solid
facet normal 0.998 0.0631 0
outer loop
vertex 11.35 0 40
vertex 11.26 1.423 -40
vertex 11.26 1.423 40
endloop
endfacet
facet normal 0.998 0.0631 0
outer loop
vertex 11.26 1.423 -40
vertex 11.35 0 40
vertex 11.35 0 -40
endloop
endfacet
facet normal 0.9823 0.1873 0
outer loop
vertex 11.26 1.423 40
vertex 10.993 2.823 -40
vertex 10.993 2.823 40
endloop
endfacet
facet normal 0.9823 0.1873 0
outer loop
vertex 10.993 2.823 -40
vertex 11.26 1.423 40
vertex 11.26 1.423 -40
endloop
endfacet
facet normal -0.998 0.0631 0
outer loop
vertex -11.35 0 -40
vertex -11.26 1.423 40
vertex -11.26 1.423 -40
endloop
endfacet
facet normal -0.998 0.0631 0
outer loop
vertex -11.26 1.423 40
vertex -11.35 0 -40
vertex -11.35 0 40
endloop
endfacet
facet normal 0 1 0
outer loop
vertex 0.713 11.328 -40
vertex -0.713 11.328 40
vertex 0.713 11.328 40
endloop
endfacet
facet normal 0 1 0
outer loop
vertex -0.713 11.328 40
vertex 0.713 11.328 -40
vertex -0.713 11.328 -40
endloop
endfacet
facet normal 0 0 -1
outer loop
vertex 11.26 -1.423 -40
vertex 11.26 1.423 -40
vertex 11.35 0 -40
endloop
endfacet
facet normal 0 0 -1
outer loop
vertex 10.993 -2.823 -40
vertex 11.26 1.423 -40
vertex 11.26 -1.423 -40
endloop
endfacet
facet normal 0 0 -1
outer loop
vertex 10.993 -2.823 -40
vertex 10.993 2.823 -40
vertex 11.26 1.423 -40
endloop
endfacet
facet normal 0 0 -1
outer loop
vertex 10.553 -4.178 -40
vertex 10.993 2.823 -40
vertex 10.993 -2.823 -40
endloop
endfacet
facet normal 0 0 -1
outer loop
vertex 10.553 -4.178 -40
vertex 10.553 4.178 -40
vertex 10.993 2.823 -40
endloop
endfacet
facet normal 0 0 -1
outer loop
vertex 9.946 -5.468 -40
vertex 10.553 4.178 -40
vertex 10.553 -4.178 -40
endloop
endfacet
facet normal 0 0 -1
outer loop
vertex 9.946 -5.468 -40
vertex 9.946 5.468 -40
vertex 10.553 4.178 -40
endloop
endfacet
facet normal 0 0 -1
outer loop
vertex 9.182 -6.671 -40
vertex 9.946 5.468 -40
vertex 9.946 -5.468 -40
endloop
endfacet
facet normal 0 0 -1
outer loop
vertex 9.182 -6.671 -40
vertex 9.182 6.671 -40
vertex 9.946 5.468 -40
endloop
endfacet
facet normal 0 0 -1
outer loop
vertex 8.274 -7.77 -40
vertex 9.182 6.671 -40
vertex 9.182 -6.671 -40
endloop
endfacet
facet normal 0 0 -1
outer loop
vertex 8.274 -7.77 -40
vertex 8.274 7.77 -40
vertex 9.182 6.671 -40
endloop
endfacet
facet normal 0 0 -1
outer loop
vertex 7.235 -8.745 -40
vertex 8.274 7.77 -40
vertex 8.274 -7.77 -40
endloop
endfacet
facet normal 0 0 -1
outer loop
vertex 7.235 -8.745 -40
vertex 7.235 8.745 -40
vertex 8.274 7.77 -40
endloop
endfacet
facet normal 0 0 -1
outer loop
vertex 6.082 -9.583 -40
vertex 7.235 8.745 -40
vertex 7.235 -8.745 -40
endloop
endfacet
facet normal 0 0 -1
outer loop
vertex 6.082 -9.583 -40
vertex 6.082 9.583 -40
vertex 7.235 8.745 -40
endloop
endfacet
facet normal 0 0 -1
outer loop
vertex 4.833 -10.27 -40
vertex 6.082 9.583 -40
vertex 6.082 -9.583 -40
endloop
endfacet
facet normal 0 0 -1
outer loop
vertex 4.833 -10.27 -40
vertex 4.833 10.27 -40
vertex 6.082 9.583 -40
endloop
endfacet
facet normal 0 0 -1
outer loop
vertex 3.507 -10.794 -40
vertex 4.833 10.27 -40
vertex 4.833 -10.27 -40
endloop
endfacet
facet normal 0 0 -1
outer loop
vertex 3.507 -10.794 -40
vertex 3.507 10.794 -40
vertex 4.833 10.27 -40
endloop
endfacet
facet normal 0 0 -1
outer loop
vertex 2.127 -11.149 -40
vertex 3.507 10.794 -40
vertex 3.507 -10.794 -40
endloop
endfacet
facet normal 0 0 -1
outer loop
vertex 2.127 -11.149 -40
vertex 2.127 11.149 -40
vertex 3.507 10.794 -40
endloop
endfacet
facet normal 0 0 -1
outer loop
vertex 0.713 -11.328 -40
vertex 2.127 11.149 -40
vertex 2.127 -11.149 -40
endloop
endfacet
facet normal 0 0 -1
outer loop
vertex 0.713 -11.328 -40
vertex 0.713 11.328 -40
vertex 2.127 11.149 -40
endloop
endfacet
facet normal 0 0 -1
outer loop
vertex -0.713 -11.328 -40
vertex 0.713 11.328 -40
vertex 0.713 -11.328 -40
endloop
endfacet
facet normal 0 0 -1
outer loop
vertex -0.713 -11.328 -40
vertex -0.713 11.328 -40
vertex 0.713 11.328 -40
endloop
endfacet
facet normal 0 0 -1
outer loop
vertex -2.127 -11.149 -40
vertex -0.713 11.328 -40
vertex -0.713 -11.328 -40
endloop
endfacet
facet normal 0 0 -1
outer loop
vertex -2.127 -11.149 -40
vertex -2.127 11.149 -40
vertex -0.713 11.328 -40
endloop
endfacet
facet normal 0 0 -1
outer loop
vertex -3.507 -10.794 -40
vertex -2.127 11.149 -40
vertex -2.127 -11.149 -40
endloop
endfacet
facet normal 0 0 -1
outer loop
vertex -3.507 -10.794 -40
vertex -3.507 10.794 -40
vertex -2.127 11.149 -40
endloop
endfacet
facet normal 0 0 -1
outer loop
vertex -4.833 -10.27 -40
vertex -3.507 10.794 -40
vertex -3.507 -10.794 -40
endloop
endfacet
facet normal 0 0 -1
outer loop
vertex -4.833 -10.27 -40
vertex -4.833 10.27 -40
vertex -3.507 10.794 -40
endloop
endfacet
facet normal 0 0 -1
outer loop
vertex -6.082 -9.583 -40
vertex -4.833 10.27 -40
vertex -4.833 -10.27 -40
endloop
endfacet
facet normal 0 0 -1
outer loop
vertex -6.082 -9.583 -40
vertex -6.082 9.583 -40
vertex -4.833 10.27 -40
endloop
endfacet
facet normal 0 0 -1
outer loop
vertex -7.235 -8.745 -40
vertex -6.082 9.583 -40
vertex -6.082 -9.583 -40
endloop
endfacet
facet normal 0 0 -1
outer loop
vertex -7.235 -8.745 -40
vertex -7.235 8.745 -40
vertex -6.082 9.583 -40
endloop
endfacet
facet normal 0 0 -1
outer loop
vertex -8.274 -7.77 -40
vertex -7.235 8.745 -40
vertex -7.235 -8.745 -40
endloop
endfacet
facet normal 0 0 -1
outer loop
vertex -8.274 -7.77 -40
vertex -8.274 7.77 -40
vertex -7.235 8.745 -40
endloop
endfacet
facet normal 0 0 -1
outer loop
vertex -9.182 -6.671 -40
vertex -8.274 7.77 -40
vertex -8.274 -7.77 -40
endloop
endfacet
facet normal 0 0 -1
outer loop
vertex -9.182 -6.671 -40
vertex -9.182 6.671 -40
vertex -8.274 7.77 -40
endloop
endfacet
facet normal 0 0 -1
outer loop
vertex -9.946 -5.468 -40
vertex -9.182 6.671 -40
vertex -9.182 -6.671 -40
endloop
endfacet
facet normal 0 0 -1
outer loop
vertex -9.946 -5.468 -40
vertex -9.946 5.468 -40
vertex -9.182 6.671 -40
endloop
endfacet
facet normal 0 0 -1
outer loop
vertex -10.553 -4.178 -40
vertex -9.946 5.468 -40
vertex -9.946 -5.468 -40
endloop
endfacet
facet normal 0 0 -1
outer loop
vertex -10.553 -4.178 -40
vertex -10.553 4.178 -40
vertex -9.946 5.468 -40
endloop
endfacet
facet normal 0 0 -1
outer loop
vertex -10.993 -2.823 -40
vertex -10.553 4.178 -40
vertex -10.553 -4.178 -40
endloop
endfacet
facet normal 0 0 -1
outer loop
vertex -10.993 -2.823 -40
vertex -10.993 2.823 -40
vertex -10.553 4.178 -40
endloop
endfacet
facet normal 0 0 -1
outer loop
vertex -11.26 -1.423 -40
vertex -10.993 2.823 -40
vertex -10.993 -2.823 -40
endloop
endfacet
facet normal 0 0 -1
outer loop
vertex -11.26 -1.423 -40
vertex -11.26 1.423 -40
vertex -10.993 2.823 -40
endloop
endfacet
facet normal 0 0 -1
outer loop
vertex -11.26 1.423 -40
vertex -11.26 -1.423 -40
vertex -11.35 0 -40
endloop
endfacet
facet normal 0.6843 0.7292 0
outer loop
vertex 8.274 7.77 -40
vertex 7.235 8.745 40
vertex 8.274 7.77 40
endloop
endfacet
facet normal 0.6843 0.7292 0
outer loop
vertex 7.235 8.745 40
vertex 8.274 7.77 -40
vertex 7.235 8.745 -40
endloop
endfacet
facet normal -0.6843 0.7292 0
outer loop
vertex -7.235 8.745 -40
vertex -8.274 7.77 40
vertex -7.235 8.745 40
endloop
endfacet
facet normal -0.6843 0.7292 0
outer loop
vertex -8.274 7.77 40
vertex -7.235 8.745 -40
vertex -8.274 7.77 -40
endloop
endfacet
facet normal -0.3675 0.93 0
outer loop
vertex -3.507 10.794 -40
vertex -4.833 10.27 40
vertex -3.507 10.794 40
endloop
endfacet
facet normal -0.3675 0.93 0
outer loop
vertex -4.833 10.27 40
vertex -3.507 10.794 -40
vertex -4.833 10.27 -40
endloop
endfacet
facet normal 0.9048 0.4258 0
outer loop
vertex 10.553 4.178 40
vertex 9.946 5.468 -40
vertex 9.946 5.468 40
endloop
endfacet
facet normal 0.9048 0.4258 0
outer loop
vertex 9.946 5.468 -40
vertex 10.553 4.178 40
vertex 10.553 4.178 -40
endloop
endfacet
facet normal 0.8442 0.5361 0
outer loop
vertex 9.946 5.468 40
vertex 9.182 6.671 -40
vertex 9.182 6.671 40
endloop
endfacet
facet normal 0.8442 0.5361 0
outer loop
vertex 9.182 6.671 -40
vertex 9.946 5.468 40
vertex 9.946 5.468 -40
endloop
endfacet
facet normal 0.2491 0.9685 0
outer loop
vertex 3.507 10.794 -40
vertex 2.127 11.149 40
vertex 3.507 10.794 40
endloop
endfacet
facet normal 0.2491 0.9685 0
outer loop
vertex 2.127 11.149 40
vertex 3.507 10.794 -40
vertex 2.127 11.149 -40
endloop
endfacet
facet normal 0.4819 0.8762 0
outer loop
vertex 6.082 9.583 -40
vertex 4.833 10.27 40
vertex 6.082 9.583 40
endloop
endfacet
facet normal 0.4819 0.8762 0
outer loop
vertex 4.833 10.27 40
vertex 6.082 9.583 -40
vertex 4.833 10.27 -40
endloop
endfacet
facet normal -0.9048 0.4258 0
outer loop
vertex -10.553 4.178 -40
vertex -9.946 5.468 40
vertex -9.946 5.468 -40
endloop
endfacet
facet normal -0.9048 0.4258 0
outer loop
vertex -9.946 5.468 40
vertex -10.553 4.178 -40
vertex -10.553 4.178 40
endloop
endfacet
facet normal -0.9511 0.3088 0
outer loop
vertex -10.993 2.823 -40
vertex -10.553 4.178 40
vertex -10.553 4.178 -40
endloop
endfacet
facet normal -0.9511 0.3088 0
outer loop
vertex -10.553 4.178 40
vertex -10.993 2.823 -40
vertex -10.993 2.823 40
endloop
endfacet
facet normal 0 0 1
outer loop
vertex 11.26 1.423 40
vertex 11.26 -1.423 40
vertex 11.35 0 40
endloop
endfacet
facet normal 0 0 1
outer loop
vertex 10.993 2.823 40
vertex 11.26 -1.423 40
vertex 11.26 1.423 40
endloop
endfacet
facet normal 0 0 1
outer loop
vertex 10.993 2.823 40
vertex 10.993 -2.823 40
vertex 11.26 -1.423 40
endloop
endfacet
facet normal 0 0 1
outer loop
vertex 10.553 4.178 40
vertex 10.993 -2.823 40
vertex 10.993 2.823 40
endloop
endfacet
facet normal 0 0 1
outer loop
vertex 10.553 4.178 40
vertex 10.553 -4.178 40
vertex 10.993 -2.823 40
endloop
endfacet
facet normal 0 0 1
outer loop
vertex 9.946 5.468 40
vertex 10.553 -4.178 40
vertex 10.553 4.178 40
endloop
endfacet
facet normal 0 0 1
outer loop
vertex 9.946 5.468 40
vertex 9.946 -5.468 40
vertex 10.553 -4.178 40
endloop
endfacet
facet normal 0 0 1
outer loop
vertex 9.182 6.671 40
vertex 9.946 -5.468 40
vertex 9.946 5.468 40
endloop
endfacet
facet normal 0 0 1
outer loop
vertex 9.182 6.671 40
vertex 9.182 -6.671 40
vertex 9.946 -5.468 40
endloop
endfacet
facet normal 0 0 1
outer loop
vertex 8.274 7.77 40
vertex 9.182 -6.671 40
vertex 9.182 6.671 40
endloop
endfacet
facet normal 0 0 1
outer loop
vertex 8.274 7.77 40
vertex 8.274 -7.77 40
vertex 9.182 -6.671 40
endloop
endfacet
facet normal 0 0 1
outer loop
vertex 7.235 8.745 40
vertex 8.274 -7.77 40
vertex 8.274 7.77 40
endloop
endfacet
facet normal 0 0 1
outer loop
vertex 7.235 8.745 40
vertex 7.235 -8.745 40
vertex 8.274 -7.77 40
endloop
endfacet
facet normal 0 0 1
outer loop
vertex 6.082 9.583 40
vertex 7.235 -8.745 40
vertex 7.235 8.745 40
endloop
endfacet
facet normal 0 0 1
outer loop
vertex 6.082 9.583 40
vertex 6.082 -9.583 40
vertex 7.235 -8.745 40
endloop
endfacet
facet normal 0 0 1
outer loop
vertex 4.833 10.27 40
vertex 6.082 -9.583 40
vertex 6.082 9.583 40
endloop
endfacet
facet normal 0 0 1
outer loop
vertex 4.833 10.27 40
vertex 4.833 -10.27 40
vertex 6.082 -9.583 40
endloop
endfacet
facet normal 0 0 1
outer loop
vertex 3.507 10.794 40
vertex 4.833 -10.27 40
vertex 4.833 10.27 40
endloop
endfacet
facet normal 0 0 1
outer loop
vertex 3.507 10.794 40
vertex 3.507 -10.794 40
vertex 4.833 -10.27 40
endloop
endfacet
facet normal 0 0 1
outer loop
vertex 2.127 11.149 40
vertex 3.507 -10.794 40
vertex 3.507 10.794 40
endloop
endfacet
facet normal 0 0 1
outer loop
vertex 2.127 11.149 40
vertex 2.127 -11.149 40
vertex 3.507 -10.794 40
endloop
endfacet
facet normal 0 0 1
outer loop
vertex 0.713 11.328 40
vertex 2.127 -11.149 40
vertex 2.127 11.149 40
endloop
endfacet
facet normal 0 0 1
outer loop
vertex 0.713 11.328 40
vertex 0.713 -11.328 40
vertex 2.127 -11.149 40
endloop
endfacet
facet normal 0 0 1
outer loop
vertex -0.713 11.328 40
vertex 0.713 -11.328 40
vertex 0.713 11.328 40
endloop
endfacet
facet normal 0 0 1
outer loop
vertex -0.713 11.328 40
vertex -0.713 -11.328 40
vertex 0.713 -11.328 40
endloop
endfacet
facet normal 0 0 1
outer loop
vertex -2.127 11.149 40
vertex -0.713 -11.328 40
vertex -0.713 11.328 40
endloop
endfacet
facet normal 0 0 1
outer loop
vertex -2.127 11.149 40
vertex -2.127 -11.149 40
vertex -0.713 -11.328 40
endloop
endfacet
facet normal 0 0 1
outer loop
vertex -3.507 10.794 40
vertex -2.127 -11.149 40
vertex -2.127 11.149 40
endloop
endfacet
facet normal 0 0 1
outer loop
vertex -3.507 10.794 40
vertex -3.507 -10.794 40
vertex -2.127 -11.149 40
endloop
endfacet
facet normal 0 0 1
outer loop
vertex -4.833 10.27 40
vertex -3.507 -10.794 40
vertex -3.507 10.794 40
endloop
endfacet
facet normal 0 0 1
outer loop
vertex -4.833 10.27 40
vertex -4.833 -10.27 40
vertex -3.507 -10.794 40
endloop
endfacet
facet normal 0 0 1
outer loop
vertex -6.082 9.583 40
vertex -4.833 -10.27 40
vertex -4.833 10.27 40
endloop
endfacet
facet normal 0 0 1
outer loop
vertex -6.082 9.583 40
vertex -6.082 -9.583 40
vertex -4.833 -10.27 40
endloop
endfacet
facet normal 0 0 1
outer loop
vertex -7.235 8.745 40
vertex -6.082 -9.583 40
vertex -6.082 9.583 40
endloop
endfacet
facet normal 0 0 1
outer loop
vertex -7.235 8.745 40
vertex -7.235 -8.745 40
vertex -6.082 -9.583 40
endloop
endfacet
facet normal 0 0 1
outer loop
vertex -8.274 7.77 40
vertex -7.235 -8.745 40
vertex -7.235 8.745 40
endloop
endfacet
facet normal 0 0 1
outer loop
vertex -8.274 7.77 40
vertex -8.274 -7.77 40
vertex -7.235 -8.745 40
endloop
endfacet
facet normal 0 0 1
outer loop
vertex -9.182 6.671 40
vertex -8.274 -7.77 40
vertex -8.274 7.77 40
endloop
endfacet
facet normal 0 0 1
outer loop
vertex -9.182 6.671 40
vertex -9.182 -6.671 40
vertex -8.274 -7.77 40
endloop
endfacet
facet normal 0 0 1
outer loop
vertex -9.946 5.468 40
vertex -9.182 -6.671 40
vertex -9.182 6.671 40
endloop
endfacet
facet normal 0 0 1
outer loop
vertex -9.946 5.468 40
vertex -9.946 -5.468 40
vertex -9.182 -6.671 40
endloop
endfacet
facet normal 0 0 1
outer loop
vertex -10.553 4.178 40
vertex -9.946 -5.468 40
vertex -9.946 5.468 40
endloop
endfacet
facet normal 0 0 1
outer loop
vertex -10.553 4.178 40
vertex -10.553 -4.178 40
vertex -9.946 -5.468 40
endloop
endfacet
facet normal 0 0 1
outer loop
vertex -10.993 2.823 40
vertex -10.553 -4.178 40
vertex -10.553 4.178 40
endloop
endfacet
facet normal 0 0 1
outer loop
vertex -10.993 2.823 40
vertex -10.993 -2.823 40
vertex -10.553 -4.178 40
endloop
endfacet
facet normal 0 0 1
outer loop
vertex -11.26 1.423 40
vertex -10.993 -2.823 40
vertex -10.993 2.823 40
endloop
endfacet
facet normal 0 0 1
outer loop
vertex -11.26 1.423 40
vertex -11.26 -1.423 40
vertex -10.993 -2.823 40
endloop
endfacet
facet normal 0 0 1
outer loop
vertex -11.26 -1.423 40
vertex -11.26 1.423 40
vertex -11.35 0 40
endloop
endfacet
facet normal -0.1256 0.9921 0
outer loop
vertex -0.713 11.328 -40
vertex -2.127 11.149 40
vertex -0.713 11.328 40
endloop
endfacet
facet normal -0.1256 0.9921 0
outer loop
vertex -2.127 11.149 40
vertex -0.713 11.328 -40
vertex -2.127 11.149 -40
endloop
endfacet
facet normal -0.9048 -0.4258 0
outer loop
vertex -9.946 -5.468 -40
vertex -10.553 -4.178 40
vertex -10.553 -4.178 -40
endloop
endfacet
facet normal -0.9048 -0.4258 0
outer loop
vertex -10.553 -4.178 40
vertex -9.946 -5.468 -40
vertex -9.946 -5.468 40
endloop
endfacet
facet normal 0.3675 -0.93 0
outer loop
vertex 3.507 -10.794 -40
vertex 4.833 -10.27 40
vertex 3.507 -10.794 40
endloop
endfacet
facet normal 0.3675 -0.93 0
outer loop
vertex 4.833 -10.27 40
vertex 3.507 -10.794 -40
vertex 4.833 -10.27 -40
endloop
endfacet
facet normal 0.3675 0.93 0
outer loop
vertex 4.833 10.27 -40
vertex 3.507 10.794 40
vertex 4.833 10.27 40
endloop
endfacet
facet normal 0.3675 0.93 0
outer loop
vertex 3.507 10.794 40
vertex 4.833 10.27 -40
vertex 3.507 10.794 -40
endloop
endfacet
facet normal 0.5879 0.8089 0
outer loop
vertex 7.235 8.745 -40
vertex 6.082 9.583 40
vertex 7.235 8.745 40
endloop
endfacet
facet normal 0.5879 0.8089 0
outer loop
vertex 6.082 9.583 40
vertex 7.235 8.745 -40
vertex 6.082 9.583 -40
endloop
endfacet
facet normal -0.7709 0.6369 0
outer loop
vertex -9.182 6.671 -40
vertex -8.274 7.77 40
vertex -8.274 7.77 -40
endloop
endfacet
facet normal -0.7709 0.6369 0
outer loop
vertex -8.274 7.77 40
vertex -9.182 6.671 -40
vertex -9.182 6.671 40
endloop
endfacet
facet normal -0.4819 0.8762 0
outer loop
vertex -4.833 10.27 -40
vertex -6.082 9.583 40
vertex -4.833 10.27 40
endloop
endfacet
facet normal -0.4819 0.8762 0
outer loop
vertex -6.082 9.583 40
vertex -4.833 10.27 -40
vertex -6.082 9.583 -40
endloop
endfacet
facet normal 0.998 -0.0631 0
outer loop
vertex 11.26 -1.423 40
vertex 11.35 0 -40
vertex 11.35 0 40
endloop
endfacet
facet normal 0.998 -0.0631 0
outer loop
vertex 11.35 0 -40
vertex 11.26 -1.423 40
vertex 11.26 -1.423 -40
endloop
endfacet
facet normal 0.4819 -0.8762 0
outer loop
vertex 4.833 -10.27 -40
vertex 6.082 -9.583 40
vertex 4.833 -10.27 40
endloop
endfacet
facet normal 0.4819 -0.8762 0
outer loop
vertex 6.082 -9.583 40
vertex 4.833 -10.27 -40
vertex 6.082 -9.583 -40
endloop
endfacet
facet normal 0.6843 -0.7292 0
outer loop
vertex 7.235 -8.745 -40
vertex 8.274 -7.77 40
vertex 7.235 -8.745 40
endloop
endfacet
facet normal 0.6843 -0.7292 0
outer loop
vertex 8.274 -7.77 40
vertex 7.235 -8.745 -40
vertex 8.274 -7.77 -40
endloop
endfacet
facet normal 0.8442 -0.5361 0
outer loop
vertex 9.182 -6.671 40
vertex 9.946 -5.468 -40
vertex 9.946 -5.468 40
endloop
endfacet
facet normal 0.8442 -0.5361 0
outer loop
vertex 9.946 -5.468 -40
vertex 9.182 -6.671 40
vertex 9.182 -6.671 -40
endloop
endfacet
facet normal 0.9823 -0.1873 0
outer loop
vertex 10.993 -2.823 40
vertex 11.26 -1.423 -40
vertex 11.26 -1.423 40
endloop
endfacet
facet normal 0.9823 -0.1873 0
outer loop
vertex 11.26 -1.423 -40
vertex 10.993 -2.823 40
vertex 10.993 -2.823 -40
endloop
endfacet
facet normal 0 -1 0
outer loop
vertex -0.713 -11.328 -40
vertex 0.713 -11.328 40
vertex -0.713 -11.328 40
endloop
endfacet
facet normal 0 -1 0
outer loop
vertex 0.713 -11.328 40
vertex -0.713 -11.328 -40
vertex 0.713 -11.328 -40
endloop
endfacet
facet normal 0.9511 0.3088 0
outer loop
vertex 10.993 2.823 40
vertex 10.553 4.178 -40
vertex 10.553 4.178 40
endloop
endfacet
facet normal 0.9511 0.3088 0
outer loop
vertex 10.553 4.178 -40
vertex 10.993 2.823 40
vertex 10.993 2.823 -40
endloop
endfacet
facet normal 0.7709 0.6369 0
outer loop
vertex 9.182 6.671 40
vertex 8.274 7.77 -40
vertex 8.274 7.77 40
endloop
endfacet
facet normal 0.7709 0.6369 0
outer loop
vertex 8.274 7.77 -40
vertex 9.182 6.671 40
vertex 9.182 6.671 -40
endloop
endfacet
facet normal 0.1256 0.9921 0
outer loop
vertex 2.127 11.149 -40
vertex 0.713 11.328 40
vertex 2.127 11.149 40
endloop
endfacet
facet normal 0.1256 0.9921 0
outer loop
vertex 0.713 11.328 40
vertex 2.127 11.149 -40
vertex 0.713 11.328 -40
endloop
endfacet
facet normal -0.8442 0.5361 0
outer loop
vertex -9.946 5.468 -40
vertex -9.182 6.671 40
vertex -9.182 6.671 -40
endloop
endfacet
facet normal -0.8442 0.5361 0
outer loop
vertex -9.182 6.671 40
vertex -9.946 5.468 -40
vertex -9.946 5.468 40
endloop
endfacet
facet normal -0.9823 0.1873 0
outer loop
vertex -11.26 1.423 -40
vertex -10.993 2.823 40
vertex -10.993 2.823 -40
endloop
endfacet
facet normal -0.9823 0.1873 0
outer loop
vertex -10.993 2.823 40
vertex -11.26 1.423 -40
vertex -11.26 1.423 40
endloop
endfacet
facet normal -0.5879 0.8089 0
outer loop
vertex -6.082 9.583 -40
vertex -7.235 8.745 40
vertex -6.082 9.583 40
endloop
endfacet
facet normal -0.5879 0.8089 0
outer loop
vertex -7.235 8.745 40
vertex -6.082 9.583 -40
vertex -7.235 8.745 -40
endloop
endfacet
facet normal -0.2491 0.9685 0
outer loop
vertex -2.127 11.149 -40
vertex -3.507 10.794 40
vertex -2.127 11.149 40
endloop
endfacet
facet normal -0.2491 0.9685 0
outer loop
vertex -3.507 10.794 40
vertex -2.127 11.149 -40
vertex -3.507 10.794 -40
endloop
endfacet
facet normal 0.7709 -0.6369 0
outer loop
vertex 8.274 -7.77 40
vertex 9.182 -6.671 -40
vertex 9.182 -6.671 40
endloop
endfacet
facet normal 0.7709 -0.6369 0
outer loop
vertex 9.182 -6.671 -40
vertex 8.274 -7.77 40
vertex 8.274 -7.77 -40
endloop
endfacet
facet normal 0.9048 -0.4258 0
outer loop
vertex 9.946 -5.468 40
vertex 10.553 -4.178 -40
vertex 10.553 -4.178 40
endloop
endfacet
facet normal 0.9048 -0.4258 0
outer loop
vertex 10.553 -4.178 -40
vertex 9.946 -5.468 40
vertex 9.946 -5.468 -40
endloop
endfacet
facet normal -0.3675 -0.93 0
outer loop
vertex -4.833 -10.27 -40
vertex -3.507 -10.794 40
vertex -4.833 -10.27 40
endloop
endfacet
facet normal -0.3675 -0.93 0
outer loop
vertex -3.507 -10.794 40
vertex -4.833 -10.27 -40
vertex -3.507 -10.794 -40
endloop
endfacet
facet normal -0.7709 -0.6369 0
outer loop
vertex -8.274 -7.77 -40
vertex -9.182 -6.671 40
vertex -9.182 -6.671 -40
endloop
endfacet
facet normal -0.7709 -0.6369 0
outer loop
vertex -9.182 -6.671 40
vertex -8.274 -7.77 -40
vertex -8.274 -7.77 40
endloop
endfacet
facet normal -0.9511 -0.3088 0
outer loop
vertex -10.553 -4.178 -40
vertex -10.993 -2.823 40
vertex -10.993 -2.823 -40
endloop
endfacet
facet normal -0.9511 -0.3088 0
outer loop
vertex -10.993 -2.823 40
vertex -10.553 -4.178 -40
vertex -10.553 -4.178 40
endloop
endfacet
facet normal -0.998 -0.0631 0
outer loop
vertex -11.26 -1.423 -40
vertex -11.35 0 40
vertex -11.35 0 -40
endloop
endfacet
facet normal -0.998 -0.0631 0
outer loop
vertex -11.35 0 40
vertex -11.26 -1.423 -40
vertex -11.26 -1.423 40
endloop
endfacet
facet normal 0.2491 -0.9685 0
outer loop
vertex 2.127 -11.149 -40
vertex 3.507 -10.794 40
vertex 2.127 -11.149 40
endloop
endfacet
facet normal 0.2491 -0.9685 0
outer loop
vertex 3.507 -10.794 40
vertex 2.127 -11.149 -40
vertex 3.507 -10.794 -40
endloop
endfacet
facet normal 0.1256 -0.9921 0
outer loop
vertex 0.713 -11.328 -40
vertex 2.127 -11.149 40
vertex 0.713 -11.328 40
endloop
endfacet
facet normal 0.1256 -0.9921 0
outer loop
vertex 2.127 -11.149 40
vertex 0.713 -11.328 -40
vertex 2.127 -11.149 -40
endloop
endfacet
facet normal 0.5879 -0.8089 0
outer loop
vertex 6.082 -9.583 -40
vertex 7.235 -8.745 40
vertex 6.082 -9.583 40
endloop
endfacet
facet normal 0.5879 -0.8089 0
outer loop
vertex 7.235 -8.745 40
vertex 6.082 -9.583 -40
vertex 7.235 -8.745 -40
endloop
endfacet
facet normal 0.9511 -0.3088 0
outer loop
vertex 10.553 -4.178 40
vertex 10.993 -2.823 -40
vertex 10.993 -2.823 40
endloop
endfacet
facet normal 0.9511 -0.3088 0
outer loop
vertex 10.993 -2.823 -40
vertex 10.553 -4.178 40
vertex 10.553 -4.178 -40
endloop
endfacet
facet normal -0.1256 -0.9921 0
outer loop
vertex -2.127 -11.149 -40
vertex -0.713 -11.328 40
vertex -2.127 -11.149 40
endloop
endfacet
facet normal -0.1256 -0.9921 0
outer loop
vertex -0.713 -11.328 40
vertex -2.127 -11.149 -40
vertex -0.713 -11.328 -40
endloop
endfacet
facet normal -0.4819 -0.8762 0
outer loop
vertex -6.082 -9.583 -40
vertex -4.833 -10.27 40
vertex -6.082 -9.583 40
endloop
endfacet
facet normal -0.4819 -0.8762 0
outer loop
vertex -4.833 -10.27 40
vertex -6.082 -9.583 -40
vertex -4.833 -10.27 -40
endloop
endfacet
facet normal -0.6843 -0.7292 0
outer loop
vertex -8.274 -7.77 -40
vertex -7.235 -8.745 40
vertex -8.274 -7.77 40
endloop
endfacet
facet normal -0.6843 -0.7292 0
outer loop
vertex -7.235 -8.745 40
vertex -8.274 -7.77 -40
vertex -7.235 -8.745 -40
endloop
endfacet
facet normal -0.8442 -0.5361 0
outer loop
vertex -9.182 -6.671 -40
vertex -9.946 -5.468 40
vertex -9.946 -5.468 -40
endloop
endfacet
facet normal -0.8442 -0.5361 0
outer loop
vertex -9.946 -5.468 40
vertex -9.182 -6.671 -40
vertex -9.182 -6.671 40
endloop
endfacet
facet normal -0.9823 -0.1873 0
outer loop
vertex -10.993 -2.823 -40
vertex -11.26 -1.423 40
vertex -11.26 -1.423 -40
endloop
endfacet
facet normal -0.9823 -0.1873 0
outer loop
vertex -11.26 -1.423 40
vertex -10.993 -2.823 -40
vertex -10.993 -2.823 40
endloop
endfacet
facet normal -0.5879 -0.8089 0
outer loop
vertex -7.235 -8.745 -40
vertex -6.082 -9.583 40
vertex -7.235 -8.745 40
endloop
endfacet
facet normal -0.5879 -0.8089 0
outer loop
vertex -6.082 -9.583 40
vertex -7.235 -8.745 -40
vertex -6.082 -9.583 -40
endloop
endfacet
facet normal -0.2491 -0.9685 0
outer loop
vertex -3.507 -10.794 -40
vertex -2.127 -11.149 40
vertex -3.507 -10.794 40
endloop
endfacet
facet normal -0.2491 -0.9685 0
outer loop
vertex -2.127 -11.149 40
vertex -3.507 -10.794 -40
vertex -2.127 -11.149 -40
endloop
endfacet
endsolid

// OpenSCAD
$fn = 50;


difference() {
	union() {
		translate(v = [0, 0, -40.0000000000]) {
			cylinder(h = 80, r = 11.3500000000);
		}
	}
	union() {
		translate(v = [0, 0, -100.0000000000]) {
			cylinder(h = 200, r = 0);
		}
	}
}
